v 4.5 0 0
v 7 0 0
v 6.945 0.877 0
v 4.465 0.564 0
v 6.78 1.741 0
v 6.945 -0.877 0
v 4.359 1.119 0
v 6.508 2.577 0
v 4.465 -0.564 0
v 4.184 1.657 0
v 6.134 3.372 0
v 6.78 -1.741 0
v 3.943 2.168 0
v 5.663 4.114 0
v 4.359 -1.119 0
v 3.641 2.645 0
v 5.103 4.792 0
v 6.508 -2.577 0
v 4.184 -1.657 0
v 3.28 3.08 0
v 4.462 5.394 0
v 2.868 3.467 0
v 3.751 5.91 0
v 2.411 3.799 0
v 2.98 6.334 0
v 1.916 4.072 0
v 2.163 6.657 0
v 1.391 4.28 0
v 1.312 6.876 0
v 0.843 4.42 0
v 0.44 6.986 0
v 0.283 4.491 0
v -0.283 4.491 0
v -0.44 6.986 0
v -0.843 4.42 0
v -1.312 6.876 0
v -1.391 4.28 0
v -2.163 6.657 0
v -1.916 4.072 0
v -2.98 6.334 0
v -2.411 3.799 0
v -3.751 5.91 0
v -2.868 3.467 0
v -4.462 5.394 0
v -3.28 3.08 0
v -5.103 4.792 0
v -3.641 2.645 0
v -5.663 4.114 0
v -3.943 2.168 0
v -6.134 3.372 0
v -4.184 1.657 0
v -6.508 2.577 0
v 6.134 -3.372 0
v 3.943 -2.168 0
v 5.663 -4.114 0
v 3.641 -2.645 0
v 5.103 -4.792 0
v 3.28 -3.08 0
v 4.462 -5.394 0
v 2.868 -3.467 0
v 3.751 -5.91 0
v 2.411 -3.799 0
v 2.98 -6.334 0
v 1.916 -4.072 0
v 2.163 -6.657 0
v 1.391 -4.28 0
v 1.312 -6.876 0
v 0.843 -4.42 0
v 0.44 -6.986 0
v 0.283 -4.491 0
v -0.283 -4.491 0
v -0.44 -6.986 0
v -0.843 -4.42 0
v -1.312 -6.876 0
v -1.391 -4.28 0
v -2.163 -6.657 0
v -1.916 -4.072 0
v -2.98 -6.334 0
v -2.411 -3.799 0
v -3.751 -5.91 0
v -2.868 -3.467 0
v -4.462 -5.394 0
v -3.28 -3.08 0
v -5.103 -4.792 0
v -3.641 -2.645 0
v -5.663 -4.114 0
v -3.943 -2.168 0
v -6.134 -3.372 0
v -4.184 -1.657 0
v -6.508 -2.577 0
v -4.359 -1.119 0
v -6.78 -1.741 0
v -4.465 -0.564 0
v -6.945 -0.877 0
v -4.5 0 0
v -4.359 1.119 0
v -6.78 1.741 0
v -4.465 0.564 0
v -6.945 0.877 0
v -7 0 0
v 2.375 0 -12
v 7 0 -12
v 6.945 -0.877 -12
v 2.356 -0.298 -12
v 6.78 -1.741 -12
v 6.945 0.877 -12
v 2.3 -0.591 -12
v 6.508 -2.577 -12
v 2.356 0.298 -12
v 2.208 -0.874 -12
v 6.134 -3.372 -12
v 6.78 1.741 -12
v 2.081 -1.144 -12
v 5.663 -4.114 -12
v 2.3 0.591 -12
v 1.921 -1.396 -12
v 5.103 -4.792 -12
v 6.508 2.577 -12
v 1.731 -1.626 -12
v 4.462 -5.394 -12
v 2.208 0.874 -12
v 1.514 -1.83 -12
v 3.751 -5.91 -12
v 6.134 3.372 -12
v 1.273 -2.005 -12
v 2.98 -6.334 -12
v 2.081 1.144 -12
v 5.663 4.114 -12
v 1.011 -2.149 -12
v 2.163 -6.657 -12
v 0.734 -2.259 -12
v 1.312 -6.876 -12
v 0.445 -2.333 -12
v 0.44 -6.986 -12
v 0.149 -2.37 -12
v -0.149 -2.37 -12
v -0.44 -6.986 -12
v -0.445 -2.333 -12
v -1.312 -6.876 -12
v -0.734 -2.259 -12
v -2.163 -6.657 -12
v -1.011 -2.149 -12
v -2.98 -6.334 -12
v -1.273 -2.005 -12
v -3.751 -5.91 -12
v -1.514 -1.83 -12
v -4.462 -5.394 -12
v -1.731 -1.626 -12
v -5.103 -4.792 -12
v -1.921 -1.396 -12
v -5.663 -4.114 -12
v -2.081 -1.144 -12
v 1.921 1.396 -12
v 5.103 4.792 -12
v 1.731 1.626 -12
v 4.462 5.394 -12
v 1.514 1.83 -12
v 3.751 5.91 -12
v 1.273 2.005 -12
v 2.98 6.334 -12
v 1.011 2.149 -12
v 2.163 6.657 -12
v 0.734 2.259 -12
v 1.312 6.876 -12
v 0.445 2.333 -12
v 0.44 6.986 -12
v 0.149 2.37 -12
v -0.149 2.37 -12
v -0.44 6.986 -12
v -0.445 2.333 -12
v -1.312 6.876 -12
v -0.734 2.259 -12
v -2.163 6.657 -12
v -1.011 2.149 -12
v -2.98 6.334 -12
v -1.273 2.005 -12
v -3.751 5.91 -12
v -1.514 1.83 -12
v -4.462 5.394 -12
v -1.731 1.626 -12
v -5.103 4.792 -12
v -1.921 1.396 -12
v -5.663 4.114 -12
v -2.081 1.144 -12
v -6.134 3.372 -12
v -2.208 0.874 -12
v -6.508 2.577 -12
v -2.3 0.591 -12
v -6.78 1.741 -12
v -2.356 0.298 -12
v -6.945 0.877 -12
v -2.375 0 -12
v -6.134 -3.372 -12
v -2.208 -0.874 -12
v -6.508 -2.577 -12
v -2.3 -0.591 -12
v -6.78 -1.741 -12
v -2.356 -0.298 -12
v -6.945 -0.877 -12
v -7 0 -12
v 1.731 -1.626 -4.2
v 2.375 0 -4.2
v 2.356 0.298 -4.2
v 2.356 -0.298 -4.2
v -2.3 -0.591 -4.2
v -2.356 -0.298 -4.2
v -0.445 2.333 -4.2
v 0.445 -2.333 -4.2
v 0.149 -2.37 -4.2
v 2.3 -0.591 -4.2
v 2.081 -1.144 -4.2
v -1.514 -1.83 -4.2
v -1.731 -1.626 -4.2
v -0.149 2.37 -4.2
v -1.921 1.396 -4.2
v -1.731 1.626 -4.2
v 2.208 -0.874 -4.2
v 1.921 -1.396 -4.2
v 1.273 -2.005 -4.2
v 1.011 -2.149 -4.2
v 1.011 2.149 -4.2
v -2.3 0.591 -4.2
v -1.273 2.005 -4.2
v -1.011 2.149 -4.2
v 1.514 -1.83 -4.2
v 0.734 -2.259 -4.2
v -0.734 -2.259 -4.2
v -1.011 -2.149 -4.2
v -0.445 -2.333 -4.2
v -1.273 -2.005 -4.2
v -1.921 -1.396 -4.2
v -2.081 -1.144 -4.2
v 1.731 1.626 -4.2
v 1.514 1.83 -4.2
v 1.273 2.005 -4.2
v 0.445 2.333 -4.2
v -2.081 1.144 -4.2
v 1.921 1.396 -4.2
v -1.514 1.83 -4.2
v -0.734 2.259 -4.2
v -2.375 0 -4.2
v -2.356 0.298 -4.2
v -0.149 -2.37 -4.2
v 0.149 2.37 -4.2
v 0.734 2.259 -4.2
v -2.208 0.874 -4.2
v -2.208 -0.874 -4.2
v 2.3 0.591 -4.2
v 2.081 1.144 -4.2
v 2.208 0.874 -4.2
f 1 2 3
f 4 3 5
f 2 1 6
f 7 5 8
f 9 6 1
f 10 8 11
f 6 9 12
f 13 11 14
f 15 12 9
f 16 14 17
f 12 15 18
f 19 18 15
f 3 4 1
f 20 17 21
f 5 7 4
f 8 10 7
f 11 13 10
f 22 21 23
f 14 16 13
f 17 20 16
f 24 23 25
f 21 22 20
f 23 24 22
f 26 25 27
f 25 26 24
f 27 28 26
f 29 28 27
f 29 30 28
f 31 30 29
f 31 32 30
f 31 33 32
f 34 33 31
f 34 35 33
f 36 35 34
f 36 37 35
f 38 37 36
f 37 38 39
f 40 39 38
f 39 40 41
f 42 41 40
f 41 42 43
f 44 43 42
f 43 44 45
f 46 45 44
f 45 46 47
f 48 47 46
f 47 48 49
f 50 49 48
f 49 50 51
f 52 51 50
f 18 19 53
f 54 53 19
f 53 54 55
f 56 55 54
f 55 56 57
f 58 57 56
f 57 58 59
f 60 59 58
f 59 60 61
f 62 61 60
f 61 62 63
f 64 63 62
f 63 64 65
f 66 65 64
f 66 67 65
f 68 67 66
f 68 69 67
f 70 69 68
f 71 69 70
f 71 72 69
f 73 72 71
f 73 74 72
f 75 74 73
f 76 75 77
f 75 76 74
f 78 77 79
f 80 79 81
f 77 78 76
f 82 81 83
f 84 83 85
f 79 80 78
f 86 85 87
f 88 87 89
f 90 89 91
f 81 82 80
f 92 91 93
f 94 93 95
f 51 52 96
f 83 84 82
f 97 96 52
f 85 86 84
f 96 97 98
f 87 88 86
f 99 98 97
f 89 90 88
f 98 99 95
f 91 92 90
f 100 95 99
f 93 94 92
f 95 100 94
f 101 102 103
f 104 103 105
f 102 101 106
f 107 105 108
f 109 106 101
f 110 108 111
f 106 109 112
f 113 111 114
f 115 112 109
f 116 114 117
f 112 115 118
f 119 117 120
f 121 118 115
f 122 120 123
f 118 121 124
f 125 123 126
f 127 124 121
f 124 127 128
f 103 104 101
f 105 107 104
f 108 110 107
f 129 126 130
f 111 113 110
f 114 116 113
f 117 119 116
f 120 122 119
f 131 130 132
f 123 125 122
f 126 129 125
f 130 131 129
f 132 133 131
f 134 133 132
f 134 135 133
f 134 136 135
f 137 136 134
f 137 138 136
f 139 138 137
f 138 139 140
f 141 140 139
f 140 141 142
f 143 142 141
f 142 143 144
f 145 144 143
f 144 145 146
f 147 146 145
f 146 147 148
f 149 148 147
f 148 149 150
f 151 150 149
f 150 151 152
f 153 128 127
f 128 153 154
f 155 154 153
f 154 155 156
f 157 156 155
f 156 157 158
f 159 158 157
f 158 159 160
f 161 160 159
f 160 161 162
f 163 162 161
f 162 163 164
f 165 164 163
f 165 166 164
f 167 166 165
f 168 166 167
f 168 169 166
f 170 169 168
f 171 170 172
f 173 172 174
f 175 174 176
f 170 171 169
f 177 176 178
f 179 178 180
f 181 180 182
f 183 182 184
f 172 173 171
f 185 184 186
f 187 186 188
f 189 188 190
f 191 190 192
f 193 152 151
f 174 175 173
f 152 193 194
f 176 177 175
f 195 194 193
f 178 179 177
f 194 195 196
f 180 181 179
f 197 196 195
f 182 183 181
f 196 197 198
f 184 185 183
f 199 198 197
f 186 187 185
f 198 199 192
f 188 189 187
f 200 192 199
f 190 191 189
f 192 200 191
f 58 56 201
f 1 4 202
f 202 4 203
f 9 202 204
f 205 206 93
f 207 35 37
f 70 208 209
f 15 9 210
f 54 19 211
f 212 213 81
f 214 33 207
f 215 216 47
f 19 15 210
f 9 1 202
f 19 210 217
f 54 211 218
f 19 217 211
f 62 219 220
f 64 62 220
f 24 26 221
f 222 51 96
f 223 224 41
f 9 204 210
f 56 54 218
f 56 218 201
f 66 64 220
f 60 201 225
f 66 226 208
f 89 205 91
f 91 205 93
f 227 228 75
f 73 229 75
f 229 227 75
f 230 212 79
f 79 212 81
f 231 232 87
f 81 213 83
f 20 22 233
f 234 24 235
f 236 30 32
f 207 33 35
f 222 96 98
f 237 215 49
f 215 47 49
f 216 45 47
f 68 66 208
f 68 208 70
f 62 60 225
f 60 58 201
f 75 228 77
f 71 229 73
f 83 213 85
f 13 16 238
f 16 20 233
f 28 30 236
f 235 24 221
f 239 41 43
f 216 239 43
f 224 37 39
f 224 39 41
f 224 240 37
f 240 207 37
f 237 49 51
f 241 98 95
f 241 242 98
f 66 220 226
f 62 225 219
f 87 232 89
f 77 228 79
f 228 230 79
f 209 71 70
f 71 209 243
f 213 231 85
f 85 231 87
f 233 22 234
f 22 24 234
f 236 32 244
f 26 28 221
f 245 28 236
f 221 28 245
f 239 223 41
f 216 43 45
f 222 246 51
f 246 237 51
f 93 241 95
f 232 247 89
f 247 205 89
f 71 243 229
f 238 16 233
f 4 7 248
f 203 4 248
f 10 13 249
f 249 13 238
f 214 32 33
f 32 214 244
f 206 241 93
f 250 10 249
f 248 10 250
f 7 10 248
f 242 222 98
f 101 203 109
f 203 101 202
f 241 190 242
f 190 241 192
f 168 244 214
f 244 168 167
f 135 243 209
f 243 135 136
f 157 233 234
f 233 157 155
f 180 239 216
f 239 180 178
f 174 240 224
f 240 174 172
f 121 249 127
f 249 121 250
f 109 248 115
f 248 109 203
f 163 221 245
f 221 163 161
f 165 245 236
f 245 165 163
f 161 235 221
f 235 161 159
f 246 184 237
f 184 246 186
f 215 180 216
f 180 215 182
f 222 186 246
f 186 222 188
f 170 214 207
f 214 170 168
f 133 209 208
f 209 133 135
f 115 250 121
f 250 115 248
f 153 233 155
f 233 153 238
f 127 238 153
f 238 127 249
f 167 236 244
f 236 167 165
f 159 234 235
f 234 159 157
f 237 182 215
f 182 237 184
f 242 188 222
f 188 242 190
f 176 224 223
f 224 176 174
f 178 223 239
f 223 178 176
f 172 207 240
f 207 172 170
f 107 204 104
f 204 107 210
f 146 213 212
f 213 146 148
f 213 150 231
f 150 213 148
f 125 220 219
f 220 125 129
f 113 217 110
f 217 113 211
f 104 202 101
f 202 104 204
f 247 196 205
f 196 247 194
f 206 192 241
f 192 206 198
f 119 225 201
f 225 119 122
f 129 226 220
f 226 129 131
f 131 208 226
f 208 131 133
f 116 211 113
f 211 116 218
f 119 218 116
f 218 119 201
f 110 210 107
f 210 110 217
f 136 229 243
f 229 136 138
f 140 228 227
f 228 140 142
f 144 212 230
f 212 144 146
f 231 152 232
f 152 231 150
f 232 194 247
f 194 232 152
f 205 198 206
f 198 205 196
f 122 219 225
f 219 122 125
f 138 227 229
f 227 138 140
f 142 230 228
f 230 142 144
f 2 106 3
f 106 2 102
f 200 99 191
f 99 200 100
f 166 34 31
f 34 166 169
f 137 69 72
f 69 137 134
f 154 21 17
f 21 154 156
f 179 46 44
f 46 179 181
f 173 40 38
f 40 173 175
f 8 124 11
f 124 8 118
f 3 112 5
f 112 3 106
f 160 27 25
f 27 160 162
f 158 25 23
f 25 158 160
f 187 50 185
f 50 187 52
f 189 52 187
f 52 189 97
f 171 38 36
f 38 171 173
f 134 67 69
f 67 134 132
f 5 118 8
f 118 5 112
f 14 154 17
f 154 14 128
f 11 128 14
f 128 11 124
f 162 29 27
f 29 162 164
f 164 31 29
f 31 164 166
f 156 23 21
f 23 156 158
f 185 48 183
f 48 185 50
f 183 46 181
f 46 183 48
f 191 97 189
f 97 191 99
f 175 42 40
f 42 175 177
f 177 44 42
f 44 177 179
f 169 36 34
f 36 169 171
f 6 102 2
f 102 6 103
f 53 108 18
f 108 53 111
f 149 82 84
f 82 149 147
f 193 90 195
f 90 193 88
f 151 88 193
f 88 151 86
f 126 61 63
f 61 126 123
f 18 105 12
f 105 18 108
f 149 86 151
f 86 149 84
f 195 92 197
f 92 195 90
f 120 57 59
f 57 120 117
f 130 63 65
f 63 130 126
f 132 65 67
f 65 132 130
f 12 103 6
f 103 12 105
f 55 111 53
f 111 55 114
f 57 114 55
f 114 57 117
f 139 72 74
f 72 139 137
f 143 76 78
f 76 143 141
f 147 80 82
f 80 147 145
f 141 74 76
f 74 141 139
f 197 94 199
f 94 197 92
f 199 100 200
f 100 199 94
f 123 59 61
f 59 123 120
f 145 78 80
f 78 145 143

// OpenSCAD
$fn = 50;


difference() {
	union() {
		translate(v = [0, 0, -12.0000000000]) {
			cylinder(h = 12, r = 7.0000000000);
		}
	}
	union() {
		translate(v = [0, 0, 0]) {
			rotate(a = [0, 0, 0]) {
				difference() {
					union() {
						translate(v = [0, 0, -12.0000000000]) {
							cylinder(h = 12, r = 2.2500000000);
						}
						translate(v = [0, 0, -4.2000000000]) {
							cylinder(h = 4.2000000000, r1 = 2.3750000000, r2 = 4.5000000000);
						}
						translate(v = [0, 0, -12.0000000000]) {
							cylinder(h = 12, r = 2.3750000000);
						}
						translate(v = [0, 0, -12.0000000000]) {
							cylinder(h = 12, r = 2.2500000000);
						}
					}
					union();
				}
			}
		}
	}
}
